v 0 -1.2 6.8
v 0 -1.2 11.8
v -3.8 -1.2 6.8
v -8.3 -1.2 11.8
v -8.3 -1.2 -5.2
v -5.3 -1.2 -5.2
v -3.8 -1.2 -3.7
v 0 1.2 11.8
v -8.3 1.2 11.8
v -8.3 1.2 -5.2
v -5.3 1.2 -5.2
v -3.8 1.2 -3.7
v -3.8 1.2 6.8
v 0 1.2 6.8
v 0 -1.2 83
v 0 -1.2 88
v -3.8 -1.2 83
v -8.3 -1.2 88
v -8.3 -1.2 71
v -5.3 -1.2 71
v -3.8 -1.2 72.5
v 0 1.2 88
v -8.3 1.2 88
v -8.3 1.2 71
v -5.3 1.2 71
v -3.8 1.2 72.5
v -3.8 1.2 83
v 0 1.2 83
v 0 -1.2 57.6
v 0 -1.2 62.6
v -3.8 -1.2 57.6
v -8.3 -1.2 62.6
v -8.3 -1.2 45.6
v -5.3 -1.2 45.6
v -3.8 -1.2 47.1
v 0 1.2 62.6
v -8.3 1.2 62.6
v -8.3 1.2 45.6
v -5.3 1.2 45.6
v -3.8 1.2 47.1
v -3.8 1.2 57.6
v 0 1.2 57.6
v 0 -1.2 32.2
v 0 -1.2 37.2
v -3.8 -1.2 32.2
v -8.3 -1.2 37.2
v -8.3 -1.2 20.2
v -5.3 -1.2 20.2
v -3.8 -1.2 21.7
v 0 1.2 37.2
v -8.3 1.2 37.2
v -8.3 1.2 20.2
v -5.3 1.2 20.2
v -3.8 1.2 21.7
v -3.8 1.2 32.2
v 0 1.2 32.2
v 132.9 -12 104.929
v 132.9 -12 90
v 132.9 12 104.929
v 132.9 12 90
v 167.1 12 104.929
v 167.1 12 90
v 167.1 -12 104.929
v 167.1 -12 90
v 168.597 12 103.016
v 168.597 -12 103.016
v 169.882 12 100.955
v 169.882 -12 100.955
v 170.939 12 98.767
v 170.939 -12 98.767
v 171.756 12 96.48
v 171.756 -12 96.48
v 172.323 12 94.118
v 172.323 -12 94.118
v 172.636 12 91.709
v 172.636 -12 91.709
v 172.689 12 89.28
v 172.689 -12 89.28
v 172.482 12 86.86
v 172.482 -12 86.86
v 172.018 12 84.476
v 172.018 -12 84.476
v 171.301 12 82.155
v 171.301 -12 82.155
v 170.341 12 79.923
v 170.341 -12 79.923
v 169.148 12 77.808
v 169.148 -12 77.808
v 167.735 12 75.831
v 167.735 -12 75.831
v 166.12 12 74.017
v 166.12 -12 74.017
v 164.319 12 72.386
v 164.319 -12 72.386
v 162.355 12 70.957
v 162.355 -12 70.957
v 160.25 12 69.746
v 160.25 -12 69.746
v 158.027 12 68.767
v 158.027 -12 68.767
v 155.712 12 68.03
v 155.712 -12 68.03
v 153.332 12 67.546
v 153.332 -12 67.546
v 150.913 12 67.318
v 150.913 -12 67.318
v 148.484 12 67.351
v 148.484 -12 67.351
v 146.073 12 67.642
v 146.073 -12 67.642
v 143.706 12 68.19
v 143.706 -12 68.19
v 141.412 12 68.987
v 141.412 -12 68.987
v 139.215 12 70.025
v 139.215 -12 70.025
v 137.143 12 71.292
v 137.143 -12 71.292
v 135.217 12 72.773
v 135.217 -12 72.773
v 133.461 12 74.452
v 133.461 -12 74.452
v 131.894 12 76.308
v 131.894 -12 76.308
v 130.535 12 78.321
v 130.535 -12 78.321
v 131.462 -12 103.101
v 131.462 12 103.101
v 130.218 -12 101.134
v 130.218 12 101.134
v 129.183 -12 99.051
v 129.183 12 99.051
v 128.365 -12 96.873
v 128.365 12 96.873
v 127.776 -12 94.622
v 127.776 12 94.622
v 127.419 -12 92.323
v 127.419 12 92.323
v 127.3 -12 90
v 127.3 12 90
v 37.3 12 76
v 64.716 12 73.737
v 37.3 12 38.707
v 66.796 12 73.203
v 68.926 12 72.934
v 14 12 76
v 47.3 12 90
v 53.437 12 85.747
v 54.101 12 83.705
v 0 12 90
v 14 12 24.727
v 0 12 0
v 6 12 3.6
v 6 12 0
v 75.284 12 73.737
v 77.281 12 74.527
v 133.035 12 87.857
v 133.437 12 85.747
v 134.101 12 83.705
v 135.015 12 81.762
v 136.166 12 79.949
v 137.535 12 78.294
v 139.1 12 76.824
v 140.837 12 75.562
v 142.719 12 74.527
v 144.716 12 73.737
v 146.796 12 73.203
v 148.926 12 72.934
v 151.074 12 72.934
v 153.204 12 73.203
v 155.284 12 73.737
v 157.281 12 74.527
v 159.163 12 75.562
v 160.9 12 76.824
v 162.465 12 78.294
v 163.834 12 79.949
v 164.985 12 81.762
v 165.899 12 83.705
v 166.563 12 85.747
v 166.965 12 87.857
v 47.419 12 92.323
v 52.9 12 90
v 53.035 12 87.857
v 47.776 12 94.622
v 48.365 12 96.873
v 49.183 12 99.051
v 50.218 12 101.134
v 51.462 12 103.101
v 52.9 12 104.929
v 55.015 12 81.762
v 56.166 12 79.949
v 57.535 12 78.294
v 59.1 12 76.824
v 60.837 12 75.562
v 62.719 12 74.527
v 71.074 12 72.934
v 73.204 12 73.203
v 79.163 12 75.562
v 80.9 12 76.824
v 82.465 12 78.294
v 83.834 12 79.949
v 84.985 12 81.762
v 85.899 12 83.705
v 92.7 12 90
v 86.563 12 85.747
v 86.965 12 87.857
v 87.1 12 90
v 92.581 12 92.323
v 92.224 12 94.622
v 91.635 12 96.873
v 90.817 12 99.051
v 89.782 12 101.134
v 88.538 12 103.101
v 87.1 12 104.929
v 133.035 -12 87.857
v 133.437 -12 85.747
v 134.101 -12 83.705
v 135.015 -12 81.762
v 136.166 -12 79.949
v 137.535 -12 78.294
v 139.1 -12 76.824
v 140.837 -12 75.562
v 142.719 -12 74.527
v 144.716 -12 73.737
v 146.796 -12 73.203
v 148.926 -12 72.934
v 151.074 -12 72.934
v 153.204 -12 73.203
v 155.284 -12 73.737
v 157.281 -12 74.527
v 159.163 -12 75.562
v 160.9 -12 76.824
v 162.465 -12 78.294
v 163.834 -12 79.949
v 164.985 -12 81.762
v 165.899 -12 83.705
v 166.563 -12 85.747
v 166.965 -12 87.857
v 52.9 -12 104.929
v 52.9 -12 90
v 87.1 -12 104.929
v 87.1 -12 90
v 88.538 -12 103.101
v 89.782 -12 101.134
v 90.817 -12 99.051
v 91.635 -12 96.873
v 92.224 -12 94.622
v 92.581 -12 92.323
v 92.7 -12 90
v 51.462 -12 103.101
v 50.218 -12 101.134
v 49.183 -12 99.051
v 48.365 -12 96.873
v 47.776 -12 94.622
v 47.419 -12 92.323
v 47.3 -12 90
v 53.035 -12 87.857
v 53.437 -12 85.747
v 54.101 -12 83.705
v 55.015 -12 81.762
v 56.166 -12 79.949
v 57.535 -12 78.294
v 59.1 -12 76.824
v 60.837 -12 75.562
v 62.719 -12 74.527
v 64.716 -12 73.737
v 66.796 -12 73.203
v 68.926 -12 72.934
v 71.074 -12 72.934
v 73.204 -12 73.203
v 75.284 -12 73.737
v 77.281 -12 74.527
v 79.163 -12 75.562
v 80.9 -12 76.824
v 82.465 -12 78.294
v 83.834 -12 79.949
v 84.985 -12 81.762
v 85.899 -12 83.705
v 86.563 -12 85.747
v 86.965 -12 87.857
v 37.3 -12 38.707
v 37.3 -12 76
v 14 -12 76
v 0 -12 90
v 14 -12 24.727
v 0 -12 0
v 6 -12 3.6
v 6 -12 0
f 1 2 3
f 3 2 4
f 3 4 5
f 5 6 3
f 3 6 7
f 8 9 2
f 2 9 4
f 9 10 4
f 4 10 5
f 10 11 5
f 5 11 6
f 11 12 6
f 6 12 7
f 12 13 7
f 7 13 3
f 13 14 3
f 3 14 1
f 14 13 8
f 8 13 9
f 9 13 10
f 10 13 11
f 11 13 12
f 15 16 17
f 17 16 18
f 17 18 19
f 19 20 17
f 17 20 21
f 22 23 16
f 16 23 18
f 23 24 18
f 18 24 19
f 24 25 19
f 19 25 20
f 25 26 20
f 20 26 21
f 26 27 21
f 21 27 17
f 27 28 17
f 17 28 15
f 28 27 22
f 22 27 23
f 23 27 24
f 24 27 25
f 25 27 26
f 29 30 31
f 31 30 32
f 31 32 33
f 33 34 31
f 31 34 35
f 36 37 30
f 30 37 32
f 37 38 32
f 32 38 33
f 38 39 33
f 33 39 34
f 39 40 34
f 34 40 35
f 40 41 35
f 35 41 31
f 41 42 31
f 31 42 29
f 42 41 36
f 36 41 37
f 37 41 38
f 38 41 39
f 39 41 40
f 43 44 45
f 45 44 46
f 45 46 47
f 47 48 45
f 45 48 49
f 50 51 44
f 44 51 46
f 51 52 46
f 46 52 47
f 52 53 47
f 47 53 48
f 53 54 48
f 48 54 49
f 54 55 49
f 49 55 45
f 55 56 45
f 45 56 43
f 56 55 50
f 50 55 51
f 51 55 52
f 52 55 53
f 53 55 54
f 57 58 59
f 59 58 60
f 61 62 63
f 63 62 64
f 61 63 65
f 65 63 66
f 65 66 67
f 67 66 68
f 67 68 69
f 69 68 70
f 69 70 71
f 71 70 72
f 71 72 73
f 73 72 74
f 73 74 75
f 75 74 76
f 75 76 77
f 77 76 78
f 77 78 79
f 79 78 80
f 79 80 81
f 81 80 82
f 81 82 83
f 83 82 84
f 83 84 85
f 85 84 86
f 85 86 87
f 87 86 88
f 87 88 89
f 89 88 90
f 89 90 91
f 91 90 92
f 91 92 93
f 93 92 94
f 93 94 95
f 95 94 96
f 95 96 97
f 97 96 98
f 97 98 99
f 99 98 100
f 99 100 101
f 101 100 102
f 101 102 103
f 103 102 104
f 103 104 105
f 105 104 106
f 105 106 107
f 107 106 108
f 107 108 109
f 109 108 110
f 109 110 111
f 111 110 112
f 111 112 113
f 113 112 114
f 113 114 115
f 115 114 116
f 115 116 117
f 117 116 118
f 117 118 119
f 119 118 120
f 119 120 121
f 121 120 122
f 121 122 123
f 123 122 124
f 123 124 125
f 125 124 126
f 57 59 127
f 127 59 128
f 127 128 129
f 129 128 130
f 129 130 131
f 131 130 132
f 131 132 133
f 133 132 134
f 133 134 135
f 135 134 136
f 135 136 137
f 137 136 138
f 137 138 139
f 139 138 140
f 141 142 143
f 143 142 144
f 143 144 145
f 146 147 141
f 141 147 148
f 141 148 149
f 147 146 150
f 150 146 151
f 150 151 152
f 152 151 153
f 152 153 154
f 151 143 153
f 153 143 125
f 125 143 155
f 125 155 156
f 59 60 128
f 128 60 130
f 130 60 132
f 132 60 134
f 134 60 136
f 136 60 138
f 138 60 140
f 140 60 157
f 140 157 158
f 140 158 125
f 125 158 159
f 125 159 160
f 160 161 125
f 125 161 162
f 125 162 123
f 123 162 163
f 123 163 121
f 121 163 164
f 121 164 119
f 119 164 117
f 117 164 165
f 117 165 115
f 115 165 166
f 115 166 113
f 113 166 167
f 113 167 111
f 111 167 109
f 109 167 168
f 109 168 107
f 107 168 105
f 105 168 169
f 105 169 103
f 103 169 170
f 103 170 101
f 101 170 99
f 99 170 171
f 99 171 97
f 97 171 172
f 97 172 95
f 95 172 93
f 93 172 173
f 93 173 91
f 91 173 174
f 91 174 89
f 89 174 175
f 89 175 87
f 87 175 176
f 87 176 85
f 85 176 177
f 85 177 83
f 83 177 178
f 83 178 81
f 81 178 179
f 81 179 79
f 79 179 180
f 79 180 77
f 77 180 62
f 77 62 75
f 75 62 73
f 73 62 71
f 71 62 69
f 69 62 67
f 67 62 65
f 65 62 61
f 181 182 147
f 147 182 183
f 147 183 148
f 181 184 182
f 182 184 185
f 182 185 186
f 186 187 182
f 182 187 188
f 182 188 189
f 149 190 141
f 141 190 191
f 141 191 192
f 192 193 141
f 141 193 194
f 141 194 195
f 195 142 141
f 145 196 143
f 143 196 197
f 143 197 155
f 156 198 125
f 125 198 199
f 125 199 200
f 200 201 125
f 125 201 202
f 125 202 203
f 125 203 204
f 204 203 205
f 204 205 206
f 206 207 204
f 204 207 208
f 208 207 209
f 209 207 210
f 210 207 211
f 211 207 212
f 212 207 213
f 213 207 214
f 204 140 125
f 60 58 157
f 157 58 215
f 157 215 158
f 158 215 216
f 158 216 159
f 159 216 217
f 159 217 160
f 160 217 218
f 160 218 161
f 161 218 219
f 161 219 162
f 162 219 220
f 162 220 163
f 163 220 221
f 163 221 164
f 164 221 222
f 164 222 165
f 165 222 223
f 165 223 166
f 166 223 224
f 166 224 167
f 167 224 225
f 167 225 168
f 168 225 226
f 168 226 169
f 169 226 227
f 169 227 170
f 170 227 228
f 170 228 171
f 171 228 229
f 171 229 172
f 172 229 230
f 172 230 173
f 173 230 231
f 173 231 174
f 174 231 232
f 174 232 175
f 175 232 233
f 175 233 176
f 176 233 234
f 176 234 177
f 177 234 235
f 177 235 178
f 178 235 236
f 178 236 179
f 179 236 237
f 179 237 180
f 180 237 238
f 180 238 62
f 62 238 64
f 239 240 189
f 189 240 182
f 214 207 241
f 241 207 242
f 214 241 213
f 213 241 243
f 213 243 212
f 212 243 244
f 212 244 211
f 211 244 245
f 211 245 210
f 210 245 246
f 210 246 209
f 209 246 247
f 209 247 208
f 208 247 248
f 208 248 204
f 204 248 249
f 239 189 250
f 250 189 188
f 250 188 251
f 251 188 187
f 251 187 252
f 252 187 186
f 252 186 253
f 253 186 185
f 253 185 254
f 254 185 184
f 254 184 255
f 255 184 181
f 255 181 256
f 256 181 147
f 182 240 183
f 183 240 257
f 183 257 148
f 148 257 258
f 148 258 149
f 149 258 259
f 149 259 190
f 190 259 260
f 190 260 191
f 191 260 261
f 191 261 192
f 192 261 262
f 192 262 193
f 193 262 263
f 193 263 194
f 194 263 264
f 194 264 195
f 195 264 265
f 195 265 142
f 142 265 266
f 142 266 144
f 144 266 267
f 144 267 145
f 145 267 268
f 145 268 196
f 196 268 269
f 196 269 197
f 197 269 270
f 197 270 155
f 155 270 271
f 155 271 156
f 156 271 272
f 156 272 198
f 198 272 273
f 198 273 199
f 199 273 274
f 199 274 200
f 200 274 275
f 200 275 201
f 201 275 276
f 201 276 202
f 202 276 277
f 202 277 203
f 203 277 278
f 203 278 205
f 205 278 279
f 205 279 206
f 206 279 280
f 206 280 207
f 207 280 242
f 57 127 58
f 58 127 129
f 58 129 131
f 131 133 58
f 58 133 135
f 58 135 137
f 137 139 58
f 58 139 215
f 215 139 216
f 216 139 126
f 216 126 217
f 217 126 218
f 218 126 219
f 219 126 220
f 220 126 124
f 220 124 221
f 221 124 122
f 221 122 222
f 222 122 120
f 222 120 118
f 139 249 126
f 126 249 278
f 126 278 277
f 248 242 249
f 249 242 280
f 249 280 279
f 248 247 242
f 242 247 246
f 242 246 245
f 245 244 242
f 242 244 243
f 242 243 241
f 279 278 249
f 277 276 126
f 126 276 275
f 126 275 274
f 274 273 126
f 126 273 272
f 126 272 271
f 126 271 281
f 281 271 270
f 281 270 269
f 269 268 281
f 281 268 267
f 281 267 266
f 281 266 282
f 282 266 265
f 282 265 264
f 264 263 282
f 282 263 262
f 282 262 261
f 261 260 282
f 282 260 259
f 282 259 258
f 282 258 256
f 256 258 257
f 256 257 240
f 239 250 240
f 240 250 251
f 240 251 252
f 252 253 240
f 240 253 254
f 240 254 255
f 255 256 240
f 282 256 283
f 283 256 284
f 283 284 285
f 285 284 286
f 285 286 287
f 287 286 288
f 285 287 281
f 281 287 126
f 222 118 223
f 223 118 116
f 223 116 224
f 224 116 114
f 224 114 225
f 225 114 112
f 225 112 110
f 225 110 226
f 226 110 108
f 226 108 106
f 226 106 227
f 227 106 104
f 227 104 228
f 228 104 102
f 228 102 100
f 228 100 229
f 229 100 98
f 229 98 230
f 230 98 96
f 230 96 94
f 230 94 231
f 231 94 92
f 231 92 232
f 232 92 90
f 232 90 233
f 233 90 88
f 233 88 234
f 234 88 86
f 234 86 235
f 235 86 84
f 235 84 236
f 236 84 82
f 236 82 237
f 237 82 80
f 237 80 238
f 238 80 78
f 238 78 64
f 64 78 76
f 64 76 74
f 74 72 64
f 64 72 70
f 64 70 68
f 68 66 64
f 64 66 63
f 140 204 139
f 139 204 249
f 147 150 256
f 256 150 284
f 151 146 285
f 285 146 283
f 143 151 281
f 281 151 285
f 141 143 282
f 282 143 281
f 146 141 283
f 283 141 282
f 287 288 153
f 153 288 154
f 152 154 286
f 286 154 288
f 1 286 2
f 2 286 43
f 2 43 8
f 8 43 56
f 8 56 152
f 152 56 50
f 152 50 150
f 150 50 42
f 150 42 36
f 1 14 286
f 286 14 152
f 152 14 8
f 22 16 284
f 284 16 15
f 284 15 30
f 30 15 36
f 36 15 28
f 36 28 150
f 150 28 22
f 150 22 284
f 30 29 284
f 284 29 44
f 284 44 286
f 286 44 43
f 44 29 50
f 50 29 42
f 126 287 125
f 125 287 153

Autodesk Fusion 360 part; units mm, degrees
sketch "Arm triangle" plane through (0, 0, 0) normal (0, 1, 0) x (1, 0, 0)
  line L0 (0, 0) -> (0, -90)
  line L1 (0, -90) -> (150, -90)
  line L2 (150, -90) -> (0, 0)
  dimension "d186" = 90
extrude "Arm triangle (1)" add sketch "Arm triangle" along normal mid plane 24
sketch "Plate" plane through (0, 0, 0) normal (0, 1, 0) x (1, 0, 0)
  line L0 (0, 0) -> (6, 0)
  line L1 (6, 0) -> (6, -90)
  line L2 (6, -90) -> (0, -90)
  line L3 (0, -90) -> (0, 0)
  dimension "d190" = 6
  dimension "d191" = 90
extrude "Plate (1)" add sketch "Plate" along normal mid plane 24
sketch "Lightening cutout" plane through (0, 0, 0) normal (0, 1, 0) x (1, 0, 0)
  line L0 (14, -24.7267) -> (14, -76)
  line L1 (14, -76) -> (37.3, -76)
  line L2 (37.3, -76) -> (37.3, -38.7067)
  line L3 (37.3, -38.7067) -> (14, -24.7267)
  dimension "d194" = 14
  dimension "d195" = 24.7267
  dimension "d196" = 76
  dimension "d197" = 37.3
  dimension "d198" = 38.7067
extrude "Lightening cutout (1)" cut sketch "Lightening cutout" along normal mid plane 34
sketch "Saddle boss x=70" plane through (0, 0, 0) normal (0, 1, 0) x (1, 0, 0)
  circle A0 centre (70, -90) radius 22.7
  dimension "d201" = 70
  dimension "d202" = 90
  dimension "d203" = 45.4
extrude "Saddle boss x=70 (1)" add sketch "Saddle boss x=70" along normal mid plane 24
sketch "Saddle boss x=150" plane through (0, 0, 0) normal (0, 1, 0) x (1, 0, 0)
  circle A0 centre (150, -90) radius 22.7
  dimension "d207" = 90
  dimension "d208" = 45.4
extrude "Saddle boss x=150 (1)" add sketch "Saddle boss x=150" along normal mid plane 24
sketch "Rod pocket x=70" plane through (0, 0, 0) normal (0, 1, 0) x (1, 0, 0)
  circle A0 centre (70, -90) radius 17.1
  dimension "d211" = 70
  dimension "d212" = 90
  dimension "d213" = 34.2
extrude "Rod pocket x=70 (1)" cut sketch "Rod pocket x=70" along normal mid plane 34
sketch "Drop-in opening x=70" plane through (0, 0, 0) normal (0, 1, 0) x (1, 0, 0)
  line L0 (52.9, -90) -> (87.1, -90)
  line L1 (87.1, -90) -> (87.1, -117.7)
  line L2 (87.1, -117.7) -> (52.9, -117.7)
  line L3 (52.9, -117.7) -> (52.9, -90)
  dimension "d216" = 52.9
  dimension "d217" = 90
  dimension "d218" = 87.1
  dimension "d219" = 117.7
extrude "Drop-in opening x=70 (1)" cut sketch "Drop-in opening x=70" along normal mid plane 34
sketch "Rod pocket x=150" plane through (0, 0, 0) normal (0, 1, 0) x (1, 0, 0)
  circle A0 centre (150, -90) radius 17.1
  dimension "d223" = 90
  dimension "d224" = 34.2
extrude "Rod pocket x=150 (1)" cut sketch "Rod pocket x=150" along normal mid plane 34
sketch "Drop-in opening x=150" plane through (0, 0, 0) normal (0, 1, 0) x (1, 0, 0)
  line L0 (132.9, -90) -> (167.1, -90)
  line L1 (167.1, -90) -> (167.1, -117.7)
  line L2 (167.1, -117.7) -> (132.9, -117.7)
  line L3 (132.9, -117.7) -> (132.9, -90)
  dimension "d227" = 132.9
  dimension "d228" = 90
  dimension "d229" = 167.1
  dimension "d230" = 117.7
extrude "Drop-in opening x=150 (1)" cut sketch "Drop-in opening x=150" along normal mid plane 34
sketch "Hook profile" plane through (0, 0, 0) normal (0, 1, 0) x (1, 0, 0)
  line L0 (0, -88) -> (-8.3, -88)
  line L1 (-8.3, -88) -> (-8.3, -71)
  line L2 (-8.3, -71) -> (-5.3, -71)
  line L3 (-5.3, -71) -> (-3.8, -72.5)
  line L4 (-3.8, -72.5) -> (-3.8, -83)
  line L5 (-3.8, -83) -> (0, -83)
  line L6 (0, -83) -> (0, -88)
  dimension "d233" = 88
  dimension "d234" = 8.3
  dimension "d235" = 3.8
  dimension "d236" = 5
  dimension "d237" = 10.5
  dimension "d238" = 1.5
  dimension "d239" = 1.5
extrude "Hook profile (1)" add sketch "Hook profile" along normal mid plane 2.4
pattern_linear "Hook rows" count 4 spacing 25.4 along (0, 0, -1) count 3 spacing 0 along (0, 0, 1) of "Hook profile (1)"
equation "bracketWidth = 24.0 mm" comment "bracket width along the rods"
equation "hookTabWidth = slotWidth - 0.8 mm" comment "blade width through the slot"
equation "slotPitchVertical = 25.4 mm" comment "1 inch, measured"
equation "slotWidth = 3.2 mm" comment "measured slot width in the upright"
equation "faceMetalThickness = 2.0 mm" comment "upright face metal"
equation "hookThroat = faceMetalThickness + 1.8 mm" comment "gap behind the plate"
equation "hookNeckHeight = 5.0 mm" comment "bears on the slot bottom edge"
equation "hookLipThickness = 4.5 mm" comment "lip thickness behind the face"
equation "hookLipDrop = 12.0 mm" comment "engagement below the neck"
equation "plateThickness = 6.0 mm" comment "hook plate thickness"
equation "plateHeight = 90.0 mm" comment "plate height, also the rod height"
equation "rodOuterDiameter = 33.4 mm" comment "1 inch sch 40 PVC"
equation "saddleClearance = 0.8 mm" comment "diametral pocket clearance"
equation "saddleWall = 6.0 mm" comment "wall around the rod pocket"
equation "rearRodStandoff = 70.0 mm" comment "rear rod, from the upright"
equation "rodSpacing = 80.0 mm" comment "rod centres, front minus rear"
equation "memberWidth = 14.0 mm" comment "border around the lightening cutout"
equation "hookLipChamfer = 1.5 mm" comment "lead-in past slot burrs"
equation "topHookNeckTop = 88.0 mm" comment "top row, below the plate top"
equation "hookRows = 4" comment "number of hook rows (pattern count)"
equation "d186 = plateHeight"
equation "d187 = ( rearRodStandoff + rodSpacing )"
equation "d188 = bracketWidth"
equation "d190 = plateThickness"
equation "d191 = plateHeight"
equation "d192 = bracketWidth"
equation "d194 = memberWidth"
equation "d195 = plateHeight / ( rearRodStandoff + rodSpacing ) * ( ( memberWidth ) - ( -memberWidth * plateHeight / sqrt(( rearRodStandoff + rodSpacing ) * ( rearRodStandoff + rodSpacing ) + plateHeight * plateHeight) ) ) + ( memberWidth * ( rearRodStandoff + rodSpacing ) / sqrt(( rearRodStandoff + rodSpacing ) * ( rearRodStandoff + rodSpacing ) + plateHeight * plateHeight) )"
equation "d196 = plateHeight - memberWidth"
equation "d197 = rearRodStandoff - ( rodOuterDiameter + 2 * saddleWall ) / 2 - 10 mm"
equation "d198 = plateHeight / ( rearRodStandoff + rodSpacing ) * ( ( rearRodStandoff - ( rodOuterDiameter + 2 * saddleWall ) / 2 - 10 mm ) - ( -memberWidth * plateHeight / sqrt(( rearRodStandoff + rodSpacing ) * ( rearRodStandoff + rodSpacing ) + plateHeight * plateHeight) ) ) + ( memberWidth * ( rearRodStandoff + rodSpacing ) / sqrt(( rearRodStandoff + rodSpacing ) * ( rearRodStandoff + rodSpacing ) + plateHeight * plateHeight) )"
equation "d199 = bracketWidth + 10 mm"
equation "d201 = rearRodStandoff"
equation "d202 = plateHeight"
equation "d203 = rodOuterDiameter + 2 * saddleWall"
equation "d204 = bracketWidth"
equation "d206 = ( rearRodStandoff + rodSpacing )"
equation "d207 = plateHeight"
equation "d208 = rodOuterDiameter + 2 * saddleWall"
equation "d209 = bracketWidth"
equation "d211 = rearRodStandoff"
equation "d212 = plateHeight"
equation "d213 = rodOuterDiameter + saddleClearance"
equation "d214 = bracketWidth + 10 mm"
equation "d216 = rearRodStandoff - ( rodOuterDiameter + saddleClearance ) / 2"
equation "d217 = plateHeight"
equation "d218 = rearRodStandoff + ( rodOuterDiameter + saddleClearance ) / 2"
equation "d219 = plateHeight + ( rodOuterDiameter + 2 * saddleWall ) / 2 + 5 mm"
equation "d220 = bracketWidth + 10 mm"
equation "d222 = ( rearRodStandoff + rodSpacing )"
equation "d223 = plateHeight"
equation "d224 = rodOuterDiameter + saddleClearance"
equation "d225 = bracketWidth + 10 mm"
equation "d227 = ( rearRodStandoff + rodSpacing ) - ( rodOuterDiameter + saddleClearance ) / 2"
equation "d228 = plateHeight"
equation "d229 = ( rearRodStandoff + rodSpacing ) + ( rodOuterDiameter + saddleClearance ) / 2"
equation "d230 = plateHeight + ( rodOuterDiameter + 2 * saddleWall ) / 2 + 5 mm"
equation "d231 = bracketWidth + 10 mm"
equation "d233 = topHookNeckTop"
equation "d234 = hookThroat + hookLipThickness"
equation "d235 = hookThroat"
equation "d236 = hookNeckHeight"
equation "d237 = hookLipDrop - hookLipChamfer"
equation "d238 = hookLipChamfer"
equation "d239 = hookLipChamfer"
equation "d240 = hookTabWidth"
equation "d242 = hookRows"
equation "d244 = -slotPitchVertical"
